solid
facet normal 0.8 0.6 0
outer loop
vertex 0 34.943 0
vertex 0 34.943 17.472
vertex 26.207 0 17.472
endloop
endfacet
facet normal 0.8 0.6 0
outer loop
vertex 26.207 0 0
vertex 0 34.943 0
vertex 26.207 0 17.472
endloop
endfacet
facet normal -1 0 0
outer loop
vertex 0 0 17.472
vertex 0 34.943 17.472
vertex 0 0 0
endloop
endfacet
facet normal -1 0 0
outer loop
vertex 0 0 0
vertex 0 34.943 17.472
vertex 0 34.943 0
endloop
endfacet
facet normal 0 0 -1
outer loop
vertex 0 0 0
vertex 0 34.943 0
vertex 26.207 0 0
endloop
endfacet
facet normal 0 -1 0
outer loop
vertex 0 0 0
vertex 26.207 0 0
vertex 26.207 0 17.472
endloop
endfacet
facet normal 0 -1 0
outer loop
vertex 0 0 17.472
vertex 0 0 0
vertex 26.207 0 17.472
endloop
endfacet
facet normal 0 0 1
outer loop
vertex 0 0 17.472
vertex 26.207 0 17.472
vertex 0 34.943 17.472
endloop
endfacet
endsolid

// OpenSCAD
$fn=100;

volume=8000;

h=pow((volume*2/3),1/3);
l=3/2*h;
w=2*h;

v=w*l*h/2;
echo("h=",h);
echo("l=",l);
echo("w=",w);
echo("volume=",v);

polyhedron(
   points=[
	  [0,0,0], [l,0,0], [0,w,0], //bottom triangle
	  [0,0,h], [l,0,h], [0,w,h]  //top triangle
   ],
   faces=[
     [0,1,2],                   //bottom triangle
     [5,4,3],                   //top triangle
     [3,0,2,5],                 //one short side
     [0,3,4,1],                 //other short side
     [4,5,2,1]                  //hypotenuse side
]);
